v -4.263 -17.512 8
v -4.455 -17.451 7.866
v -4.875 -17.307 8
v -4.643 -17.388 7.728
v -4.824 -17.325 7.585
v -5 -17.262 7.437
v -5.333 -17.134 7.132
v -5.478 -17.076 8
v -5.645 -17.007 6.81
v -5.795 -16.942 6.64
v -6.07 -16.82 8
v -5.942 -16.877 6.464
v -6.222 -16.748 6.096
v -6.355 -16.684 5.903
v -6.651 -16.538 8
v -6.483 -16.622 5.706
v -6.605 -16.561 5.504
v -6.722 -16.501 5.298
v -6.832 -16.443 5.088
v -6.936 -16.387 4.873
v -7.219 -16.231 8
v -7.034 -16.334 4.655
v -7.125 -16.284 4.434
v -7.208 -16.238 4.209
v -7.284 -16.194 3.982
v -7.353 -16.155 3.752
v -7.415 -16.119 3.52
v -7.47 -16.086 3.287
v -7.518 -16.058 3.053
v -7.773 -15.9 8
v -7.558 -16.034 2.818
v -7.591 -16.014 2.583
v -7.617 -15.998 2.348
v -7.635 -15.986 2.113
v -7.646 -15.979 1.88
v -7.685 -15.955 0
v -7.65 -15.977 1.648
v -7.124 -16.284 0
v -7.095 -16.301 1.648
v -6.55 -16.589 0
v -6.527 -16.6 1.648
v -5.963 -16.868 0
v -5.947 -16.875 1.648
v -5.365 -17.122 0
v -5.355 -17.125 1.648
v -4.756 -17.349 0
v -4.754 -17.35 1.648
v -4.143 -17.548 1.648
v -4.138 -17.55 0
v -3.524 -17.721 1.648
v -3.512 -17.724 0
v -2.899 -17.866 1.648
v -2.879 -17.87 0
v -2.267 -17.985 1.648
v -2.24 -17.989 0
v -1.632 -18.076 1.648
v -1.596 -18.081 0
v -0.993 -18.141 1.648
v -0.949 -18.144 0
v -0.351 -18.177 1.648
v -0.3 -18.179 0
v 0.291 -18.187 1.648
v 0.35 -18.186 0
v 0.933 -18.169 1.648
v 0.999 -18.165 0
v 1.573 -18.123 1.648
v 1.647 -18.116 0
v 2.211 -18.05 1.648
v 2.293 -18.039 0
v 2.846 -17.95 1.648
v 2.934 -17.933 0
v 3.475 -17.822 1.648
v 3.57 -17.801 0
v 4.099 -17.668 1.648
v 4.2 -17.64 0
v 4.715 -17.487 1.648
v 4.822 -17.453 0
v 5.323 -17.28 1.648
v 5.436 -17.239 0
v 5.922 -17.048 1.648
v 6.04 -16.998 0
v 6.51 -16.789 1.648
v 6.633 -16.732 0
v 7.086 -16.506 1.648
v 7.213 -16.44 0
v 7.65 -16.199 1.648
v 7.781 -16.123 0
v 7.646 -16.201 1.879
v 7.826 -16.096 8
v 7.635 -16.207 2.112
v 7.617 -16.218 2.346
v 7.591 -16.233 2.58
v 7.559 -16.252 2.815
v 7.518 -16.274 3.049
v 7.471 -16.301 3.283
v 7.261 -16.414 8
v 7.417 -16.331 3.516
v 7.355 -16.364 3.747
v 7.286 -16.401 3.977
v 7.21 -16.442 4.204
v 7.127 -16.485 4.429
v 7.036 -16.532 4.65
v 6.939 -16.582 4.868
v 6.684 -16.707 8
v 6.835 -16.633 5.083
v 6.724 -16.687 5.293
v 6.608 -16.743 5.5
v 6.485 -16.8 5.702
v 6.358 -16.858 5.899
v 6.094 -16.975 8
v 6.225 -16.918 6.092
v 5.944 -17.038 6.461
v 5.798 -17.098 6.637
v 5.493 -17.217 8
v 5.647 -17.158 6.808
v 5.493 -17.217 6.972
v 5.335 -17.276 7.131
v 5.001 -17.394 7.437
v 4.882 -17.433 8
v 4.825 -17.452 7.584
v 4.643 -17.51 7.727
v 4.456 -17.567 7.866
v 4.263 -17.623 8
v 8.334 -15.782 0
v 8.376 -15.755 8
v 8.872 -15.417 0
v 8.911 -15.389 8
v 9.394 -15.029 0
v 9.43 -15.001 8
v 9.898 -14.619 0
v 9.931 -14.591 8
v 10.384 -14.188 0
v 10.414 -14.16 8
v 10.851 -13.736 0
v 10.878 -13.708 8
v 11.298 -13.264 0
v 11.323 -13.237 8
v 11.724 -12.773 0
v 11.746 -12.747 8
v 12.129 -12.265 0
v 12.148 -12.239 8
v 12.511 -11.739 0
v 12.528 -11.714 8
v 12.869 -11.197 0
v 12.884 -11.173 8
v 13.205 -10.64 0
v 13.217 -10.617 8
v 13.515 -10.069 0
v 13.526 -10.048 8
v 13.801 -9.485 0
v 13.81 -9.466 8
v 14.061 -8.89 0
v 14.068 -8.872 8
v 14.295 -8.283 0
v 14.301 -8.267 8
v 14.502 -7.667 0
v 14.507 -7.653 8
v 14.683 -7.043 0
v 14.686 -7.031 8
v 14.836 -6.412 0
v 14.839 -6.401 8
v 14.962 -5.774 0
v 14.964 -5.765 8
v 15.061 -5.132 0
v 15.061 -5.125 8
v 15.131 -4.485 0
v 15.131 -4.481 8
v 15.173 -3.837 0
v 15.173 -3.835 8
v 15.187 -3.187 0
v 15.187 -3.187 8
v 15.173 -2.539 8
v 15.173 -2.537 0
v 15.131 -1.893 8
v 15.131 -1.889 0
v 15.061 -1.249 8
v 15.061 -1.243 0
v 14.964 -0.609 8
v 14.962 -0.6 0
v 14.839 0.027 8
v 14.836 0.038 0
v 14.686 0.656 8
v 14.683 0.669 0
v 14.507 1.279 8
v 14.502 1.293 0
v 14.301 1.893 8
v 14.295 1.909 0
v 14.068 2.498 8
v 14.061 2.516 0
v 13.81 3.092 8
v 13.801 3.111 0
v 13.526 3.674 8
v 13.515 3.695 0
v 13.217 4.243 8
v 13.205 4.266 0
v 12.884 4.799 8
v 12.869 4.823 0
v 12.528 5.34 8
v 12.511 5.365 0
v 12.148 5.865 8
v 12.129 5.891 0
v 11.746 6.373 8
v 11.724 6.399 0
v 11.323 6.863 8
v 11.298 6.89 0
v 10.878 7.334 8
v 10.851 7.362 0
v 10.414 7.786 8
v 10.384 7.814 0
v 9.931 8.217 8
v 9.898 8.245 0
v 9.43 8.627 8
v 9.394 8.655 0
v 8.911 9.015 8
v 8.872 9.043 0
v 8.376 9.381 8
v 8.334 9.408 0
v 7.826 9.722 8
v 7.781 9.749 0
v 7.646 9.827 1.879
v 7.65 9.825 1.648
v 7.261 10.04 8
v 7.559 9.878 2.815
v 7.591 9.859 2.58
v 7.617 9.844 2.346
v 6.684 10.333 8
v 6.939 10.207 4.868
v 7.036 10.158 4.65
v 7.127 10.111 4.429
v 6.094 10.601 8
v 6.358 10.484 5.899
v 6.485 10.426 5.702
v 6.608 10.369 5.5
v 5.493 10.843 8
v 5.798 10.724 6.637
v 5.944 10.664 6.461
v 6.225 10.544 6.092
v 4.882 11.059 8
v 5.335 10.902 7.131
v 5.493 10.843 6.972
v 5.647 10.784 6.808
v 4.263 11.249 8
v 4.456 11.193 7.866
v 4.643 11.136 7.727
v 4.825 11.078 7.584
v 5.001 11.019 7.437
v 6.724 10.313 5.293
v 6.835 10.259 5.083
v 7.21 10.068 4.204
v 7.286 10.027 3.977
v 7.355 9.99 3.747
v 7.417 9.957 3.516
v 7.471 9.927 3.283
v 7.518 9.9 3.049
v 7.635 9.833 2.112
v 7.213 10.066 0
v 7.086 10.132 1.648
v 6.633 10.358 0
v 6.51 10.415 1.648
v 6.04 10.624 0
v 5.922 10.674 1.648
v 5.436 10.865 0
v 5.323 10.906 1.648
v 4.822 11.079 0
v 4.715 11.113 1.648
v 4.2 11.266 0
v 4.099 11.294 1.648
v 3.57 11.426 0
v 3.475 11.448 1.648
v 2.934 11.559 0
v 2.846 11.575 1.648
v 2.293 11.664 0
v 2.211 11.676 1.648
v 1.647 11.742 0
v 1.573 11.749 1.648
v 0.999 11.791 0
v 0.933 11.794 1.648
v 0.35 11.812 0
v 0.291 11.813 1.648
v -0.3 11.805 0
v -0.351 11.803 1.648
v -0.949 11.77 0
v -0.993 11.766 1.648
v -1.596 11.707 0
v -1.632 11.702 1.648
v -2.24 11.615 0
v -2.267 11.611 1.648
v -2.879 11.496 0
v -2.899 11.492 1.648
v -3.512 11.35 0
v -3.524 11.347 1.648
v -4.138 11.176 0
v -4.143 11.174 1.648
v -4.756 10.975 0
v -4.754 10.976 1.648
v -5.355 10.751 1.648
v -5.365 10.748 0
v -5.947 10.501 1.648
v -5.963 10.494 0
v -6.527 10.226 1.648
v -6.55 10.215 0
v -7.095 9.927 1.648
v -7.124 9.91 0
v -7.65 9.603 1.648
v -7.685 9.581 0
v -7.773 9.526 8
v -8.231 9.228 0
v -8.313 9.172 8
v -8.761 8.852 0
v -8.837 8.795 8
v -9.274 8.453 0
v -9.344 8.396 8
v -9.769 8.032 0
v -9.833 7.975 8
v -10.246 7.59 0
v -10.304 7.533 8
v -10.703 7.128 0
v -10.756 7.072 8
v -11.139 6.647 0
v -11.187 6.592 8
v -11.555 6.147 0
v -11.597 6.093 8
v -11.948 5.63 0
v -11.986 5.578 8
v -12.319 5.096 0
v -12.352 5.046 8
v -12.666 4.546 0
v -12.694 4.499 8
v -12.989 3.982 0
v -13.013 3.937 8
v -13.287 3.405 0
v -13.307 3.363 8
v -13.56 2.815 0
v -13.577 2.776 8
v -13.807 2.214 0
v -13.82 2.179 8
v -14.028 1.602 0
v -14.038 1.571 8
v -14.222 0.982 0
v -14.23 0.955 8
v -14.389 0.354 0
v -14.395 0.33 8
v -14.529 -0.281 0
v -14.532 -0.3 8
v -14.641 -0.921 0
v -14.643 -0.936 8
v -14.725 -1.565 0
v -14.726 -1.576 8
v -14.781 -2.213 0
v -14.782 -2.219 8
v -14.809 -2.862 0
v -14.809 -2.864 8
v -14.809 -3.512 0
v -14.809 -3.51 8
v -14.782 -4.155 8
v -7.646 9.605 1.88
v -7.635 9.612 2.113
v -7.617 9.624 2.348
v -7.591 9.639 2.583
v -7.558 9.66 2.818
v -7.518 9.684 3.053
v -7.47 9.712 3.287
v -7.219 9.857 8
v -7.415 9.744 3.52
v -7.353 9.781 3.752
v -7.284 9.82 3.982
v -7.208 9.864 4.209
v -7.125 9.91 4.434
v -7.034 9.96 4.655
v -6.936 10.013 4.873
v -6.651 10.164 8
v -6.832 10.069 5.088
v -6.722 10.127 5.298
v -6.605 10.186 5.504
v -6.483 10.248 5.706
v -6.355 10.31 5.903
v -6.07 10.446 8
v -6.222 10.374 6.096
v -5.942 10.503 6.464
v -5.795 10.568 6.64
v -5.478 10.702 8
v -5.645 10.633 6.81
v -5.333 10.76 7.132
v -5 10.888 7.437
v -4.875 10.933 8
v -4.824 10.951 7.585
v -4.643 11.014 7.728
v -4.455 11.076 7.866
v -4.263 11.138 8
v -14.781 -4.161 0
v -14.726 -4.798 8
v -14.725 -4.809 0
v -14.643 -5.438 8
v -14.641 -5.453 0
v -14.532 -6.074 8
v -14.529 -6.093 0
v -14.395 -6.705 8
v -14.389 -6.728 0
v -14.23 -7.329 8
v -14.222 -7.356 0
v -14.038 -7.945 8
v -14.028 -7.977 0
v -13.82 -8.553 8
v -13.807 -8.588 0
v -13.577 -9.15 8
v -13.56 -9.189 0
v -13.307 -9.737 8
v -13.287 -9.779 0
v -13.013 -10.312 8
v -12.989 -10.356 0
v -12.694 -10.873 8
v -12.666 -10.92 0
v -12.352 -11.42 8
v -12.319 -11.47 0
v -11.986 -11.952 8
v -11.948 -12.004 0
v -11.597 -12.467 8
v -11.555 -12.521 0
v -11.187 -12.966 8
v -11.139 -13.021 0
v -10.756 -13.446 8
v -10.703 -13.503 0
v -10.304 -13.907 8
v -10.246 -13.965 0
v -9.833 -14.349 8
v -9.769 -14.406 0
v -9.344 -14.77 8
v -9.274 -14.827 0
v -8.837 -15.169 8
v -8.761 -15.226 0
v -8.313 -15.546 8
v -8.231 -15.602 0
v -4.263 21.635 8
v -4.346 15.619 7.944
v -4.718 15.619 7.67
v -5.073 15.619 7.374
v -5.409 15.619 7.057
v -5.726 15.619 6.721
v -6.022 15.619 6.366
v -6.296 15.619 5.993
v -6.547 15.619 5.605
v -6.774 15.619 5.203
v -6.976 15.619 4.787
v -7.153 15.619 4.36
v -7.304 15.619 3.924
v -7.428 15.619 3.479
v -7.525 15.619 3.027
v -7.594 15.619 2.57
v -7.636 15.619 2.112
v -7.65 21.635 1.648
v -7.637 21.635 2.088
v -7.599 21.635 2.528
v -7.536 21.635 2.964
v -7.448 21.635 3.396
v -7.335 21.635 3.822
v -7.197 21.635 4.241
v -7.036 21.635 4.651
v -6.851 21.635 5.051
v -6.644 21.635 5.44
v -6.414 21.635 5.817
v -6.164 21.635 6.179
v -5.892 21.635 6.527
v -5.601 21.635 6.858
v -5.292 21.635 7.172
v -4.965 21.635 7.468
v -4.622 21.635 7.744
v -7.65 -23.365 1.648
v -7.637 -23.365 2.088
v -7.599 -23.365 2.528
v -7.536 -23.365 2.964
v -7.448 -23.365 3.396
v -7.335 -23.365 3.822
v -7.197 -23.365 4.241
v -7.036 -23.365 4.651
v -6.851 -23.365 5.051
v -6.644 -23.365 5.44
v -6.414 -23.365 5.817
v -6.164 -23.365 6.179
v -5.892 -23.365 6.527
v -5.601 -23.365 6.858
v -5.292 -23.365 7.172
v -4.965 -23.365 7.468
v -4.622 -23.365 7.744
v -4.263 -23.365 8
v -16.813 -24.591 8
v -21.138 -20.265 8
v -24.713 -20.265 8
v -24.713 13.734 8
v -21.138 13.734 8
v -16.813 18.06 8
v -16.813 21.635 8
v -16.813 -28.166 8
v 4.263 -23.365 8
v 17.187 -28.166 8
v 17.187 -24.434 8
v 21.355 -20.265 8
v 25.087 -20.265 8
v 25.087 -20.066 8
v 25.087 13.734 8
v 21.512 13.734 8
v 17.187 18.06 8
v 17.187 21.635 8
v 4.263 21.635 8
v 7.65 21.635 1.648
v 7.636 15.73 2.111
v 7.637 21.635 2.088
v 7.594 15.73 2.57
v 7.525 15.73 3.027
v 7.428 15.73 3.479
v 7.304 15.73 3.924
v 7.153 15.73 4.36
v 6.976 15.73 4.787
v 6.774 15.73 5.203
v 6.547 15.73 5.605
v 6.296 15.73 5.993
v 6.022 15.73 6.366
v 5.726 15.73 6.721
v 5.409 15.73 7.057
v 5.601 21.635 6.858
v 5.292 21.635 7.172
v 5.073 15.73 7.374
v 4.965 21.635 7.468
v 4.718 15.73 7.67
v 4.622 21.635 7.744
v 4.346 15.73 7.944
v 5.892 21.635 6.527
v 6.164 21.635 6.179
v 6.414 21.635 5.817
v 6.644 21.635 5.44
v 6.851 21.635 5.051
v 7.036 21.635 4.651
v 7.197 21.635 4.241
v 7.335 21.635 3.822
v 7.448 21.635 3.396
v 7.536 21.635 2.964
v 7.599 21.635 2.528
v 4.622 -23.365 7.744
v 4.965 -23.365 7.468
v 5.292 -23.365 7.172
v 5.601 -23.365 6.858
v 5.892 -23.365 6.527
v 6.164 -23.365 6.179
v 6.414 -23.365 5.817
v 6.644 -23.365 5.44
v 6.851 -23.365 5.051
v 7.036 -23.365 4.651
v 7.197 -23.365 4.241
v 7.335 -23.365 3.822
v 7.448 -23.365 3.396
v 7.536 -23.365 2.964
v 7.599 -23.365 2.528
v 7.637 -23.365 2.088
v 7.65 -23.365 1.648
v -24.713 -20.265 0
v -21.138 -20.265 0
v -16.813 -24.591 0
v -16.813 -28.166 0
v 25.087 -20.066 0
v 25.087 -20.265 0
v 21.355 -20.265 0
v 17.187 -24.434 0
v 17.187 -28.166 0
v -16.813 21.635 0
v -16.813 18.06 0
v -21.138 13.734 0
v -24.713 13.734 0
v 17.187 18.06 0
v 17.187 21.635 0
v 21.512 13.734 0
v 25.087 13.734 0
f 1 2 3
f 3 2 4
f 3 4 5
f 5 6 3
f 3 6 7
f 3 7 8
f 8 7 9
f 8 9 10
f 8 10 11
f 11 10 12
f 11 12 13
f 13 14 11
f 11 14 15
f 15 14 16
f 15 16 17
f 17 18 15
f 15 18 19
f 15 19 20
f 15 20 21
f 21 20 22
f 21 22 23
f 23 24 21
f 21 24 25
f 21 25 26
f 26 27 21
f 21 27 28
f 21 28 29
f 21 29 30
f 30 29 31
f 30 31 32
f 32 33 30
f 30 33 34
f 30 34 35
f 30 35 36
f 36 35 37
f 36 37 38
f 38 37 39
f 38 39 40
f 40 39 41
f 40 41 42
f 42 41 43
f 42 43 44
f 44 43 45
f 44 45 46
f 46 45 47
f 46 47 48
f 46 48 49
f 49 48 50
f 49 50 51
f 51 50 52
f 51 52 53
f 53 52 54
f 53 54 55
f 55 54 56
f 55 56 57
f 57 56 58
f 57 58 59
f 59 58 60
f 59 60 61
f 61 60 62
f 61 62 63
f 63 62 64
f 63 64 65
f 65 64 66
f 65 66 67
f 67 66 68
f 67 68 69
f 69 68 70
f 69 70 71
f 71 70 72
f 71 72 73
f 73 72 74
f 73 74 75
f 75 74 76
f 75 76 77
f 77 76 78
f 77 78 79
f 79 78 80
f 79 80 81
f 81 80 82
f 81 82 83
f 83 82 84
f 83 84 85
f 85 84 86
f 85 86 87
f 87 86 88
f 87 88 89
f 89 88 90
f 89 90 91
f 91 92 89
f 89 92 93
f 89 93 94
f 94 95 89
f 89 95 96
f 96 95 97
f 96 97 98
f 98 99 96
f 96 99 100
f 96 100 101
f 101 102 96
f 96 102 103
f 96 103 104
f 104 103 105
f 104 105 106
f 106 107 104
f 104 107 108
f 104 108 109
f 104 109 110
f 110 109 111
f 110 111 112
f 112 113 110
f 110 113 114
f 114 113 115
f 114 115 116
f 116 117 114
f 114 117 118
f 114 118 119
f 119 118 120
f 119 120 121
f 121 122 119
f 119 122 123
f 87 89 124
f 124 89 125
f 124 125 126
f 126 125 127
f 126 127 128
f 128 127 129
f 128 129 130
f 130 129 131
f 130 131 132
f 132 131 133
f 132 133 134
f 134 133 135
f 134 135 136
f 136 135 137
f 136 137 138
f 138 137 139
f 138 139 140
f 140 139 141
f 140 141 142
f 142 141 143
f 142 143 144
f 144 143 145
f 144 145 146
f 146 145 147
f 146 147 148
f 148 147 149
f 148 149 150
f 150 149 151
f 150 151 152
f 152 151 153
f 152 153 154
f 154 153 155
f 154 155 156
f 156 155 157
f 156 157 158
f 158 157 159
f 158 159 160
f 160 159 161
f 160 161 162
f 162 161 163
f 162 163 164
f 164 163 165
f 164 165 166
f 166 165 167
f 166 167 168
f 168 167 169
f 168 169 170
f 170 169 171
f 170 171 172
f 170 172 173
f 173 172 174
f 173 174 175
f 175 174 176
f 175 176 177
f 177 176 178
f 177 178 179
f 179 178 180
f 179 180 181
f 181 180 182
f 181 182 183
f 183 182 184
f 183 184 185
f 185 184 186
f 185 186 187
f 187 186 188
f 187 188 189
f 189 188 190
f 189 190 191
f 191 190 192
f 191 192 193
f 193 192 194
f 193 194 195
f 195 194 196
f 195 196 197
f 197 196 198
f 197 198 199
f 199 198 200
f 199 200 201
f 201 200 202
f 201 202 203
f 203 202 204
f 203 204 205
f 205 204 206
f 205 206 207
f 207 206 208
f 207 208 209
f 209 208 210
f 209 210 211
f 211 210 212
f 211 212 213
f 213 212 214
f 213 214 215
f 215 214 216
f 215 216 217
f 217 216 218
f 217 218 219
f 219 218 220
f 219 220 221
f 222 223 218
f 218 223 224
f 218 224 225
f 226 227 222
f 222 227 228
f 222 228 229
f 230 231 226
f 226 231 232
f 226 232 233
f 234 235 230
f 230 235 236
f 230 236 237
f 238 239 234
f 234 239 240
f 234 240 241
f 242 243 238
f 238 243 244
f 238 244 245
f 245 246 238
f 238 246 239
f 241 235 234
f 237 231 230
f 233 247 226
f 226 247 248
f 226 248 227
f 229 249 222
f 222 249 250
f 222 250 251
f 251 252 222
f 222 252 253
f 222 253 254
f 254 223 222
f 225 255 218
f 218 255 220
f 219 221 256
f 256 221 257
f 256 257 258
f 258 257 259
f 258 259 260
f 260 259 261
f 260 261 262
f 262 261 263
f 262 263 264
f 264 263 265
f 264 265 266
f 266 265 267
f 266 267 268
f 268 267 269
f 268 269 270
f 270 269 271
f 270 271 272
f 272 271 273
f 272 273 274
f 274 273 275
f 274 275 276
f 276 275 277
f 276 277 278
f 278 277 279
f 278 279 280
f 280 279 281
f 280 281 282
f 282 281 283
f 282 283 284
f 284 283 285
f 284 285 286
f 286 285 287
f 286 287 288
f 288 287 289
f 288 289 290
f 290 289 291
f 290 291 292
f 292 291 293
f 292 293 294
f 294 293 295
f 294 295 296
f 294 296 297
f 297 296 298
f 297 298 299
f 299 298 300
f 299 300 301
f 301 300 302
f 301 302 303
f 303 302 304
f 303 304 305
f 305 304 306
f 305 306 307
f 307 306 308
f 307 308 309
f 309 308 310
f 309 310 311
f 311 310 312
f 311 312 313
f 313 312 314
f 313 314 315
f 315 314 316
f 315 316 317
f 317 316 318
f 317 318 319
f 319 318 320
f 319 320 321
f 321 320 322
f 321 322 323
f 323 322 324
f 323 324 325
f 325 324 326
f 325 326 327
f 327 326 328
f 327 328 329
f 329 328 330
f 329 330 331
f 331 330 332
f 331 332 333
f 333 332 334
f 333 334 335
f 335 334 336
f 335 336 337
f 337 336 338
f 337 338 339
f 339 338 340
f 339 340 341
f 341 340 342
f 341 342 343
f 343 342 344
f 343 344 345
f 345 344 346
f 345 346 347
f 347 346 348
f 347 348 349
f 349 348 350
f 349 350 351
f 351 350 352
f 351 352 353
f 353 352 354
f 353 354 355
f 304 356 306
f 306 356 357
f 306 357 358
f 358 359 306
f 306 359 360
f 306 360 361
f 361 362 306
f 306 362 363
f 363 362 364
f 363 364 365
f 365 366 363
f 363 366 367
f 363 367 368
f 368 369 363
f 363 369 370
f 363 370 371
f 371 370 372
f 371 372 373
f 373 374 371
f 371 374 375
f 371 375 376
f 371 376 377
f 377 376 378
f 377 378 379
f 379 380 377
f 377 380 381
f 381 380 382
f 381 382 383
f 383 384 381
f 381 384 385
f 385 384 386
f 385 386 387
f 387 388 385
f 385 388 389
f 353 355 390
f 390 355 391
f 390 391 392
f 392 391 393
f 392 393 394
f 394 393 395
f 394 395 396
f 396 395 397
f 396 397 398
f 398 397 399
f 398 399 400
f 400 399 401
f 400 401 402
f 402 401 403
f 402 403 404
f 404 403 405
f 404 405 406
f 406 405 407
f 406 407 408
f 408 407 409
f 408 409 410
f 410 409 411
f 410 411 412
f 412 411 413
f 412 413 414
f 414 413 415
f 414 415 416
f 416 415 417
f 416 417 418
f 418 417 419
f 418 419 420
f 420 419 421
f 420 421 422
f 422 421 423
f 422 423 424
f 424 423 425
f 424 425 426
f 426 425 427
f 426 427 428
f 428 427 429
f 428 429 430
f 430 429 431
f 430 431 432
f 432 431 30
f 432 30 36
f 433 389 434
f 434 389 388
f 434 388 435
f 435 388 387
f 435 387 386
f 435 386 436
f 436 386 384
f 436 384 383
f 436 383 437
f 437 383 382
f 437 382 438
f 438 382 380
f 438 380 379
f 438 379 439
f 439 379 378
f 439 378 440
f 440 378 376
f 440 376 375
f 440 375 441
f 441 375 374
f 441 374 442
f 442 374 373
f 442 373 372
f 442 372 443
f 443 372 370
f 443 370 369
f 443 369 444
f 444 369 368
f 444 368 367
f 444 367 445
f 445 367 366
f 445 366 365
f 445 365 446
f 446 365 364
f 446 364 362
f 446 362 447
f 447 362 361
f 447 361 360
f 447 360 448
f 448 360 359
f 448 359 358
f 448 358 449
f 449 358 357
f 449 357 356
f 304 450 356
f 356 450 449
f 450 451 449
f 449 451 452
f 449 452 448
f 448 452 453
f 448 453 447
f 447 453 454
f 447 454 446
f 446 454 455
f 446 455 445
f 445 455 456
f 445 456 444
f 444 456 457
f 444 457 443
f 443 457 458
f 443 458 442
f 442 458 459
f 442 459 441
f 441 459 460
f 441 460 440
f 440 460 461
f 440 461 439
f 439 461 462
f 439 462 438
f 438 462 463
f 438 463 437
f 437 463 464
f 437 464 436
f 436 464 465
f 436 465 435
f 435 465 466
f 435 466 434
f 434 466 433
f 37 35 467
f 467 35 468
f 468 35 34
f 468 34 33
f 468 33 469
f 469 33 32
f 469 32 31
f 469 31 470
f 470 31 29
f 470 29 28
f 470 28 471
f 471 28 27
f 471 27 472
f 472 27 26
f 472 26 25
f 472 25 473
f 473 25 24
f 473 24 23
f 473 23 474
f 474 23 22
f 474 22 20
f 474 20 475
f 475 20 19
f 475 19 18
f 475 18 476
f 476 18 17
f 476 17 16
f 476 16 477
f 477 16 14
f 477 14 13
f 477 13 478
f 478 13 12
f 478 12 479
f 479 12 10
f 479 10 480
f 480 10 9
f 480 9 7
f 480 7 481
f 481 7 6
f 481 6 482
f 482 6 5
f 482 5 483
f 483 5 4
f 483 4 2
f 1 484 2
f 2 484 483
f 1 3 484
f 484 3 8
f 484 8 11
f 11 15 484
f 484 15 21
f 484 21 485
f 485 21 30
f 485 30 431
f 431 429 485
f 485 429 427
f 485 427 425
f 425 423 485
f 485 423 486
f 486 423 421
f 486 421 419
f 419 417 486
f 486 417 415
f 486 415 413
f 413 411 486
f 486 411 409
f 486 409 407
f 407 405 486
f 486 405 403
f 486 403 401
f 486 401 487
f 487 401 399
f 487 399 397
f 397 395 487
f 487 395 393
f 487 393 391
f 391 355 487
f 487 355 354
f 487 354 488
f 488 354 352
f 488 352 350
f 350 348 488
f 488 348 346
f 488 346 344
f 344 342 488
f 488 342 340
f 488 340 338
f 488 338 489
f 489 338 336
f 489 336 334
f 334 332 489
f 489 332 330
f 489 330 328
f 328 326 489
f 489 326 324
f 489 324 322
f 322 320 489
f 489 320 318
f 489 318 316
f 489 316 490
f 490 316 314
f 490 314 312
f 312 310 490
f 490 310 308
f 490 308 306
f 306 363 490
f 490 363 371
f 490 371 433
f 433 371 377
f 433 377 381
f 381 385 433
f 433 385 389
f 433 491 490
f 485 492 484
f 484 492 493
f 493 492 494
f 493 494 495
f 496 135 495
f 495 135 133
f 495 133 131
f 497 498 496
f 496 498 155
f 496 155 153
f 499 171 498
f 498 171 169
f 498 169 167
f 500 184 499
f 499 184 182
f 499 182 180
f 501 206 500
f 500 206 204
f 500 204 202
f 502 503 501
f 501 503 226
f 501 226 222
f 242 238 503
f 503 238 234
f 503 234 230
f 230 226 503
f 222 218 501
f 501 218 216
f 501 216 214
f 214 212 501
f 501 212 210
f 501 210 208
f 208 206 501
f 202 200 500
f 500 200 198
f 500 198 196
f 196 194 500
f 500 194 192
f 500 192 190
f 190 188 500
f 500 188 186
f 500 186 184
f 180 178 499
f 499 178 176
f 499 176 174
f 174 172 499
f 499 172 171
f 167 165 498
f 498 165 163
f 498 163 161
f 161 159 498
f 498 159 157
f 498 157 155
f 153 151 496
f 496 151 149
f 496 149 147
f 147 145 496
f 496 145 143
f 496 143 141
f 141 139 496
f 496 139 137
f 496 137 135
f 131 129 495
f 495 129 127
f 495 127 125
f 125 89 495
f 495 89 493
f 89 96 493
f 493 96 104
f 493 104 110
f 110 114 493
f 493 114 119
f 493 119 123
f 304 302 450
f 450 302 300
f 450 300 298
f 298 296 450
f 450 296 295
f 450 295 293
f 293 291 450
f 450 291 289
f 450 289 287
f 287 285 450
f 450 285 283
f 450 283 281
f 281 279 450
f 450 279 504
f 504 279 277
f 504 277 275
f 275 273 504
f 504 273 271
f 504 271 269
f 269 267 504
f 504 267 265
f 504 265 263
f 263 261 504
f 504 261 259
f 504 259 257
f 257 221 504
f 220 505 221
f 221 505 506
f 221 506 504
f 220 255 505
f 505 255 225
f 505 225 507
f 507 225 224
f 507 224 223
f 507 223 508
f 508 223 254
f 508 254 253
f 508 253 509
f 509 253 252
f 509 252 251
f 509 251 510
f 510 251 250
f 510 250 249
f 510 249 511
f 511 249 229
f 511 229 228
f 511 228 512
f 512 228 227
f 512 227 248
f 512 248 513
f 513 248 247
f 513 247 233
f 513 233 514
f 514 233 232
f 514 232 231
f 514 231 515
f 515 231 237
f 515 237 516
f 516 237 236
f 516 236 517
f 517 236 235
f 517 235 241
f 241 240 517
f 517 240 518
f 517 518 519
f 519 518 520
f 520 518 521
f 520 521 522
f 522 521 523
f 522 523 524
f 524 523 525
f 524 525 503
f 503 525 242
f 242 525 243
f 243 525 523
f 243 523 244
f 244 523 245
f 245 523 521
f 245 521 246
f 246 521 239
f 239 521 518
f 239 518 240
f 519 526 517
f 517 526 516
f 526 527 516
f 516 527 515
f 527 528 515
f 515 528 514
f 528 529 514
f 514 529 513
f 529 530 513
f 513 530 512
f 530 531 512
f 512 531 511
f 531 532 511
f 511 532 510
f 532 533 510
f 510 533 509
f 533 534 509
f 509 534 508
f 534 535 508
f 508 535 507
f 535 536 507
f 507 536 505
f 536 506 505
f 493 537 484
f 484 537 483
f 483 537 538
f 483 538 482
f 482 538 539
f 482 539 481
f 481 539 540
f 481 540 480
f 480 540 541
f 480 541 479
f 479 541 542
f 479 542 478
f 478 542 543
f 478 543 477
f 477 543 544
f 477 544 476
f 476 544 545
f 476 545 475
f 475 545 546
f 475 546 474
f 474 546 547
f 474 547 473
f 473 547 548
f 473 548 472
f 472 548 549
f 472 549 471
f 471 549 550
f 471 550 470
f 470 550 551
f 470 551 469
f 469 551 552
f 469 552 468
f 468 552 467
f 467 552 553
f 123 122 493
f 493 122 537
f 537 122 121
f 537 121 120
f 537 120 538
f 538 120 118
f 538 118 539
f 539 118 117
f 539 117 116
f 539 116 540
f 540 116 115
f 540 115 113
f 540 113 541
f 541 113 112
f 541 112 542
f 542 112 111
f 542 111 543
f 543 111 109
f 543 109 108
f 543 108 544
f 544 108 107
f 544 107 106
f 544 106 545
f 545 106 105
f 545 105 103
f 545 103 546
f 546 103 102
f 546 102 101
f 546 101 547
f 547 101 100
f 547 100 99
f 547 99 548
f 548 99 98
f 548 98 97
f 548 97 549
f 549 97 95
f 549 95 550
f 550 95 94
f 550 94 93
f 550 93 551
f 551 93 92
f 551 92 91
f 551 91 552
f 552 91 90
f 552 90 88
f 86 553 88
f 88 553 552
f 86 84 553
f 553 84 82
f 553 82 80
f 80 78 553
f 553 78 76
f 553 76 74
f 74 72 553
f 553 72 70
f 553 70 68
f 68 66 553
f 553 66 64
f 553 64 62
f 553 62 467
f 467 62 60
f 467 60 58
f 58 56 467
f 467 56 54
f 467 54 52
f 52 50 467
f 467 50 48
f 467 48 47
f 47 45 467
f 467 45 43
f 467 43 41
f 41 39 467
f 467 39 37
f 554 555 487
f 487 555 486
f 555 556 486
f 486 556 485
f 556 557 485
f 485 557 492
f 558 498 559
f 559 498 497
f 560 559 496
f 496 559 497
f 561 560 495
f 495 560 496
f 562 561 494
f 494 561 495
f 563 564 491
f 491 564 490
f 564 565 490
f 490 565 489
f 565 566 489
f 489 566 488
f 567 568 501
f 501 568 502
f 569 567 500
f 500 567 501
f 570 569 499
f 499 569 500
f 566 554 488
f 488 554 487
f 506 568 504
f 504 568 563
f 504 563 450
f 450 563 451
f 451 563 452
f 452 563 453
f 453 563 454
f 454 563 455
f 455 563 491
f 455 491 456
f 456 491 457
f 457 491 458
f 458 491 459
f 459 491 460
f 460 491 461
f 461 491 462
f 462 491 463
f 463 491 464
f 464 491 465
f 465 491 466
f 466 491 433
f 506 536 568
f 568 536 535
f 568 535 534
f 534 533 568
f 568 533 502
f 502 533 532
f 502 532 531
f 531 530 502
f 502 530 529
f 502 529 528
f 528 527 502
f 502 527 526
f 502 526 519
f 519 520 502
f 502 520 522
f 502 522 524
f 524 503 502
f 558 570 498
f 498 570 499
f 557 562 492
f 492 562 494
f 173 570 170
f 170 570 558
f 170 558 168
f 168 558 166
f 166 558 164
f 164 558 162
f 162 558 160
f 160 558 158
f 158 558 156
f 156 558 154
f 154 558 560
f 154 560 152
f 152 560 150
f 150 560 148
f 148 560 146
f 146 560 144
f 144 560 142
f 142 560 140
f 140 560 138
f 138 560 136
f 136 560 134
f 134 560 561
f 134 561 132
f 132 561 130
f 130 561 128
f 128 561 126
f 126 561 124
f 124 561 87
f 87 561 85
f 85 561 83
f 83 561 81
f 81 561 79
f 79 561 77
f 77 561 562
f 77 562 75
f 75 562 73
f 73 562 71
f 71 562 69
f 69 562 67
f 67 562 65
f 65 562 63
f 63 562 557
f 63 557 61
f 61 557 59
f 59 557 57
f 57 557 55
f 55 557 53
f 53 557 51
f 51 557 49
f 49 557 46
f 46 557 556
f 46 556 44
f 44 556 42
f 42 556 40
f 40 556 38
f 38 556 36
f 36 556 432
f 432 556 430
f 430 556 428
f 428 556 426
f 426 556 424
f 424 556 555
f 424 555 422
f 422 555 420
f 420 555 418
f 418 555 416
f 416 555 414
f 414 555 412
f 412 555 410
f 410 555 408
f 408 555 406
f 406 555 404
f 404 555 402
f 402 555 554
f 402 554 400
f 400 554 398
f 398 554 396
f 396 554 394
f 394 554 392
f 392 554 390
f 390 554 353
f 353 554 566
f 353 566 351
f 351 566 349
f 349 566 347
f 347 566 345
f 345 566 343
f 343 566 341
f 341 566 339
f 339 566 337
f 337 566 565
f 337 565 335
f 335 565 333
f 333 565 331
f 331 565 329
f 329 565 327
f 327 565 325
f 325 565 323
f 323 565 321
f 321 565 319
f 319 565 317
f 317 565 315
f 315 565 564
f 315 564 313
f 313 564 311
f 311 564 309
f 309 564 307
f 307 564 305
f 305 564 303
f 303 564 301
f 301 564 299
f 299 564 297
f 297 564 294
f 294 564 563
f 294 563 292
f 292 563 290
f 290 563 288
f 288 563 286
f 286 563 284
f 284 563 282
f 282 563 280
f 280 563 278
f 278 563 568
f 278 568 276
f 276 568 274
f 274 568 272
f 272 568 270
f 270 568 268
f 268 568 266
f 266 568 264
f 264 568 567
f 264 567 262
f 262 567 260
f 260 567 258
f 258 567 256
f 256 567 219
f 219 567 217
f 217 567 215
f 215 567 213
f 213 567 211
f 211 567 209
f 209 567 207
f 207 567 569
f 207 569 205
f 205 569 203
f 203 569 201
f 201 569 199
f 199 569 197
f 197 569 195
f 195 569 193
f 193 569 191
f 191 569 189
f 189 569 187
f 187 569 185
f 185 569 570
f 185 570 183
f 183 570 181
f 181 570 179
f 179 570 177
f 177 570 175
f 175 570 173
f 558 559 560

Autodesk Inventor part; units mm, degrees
ref_plane "YZ Plane" through (0, 0, 0) normal (1, 0, 0) x (0, 1, 0)
ref_plane "XZ Plane" through (0, 0, 0) normal (0, 1, 0) x (-1, 0, 0)
ref_plane "XY Plane" through (0, 0, 0) normal (0, 0, 1) x (1, 0, 0)
sketch "Sketch1" plane through (0, 0, 0) normal (0, 0, 1) x (1, 0, 0)
  line L0 (21.5871, 13.6345) -> (17.0871, 18.1345) projected
  line L1 (17.0871, 18.1345) -> (-16.7129, 18.1345) projected
  line L2 (-16.7129, 18.1345) -> (-21.2129, 13.6345) projected
  line L3 (-21.0966, 13.6345) -> (-21.0966, -20.1655) projected
  line L4 (21.4709, -20.1655) -> (21.4709, 13.6345) projected
  line L5 (21.4709, -20.1655) -> (17.0871, -24.4078) projected
  line L6 (-16.7129, -24.4078) -> (17.0871, -24.4078) projected
  line L7 (-16.7129, -24.4078) -> (-21.0966, -20.1655) projected
  line L8 (-24.7129, -28.1655) -> (-24.7129, 13.6345) construction
  line L9 (25.0871, -28.1655) -> (-24.7129, -28.1655) construction
  line L10 (25.0871, -28.1655) -> (25.0871, 13.6345) construction
  line L11 (17.0871, 21.6345) -> (-16.7129, 21.6345) construction
  line L12 (-21.0552, -20.0655) -> (-16.6129, -24.5078)
  line L13 (-16.6129, -24.5078) -> (-16.6129, -28.1655)
  line L14 (-16.6129, -28.1655) -> (17.0871, -28.1655)
  line L15 (25.0871, -20.0655) -> (21.4295, -20.0655)
  line L16 (25.0871, 13.5345) -> (25.0871, -20.0655)
  line L17 (21.4295, 13.5345) -> (25.0871, 13.5345)
  line L18 (21.4295, 13.5345) -> (16.9871, 17.9768)
  line L19 (16.9871, 17.9768) -> (16.9871, 21.6345)
  line L20 (16.9871, 21.6345) -> (-16.6129, 21.6345)
  line L21 (-16.6129, 21.6345) -> (-16.6129, 17.9768)
  line L22 (-16.6129, 17.9768) -> (-21.0552, 13.5345)
  line L23 (-24.7129, 13.5345) -> (-21.0552, 13.5345)
  line L24 (-24.7129, -20.0655) -> (-24.7129, 13.5345)
  line L25 (-21.0552, -20.0655) -> (-24.7129, -20.0655)
  line L26 (-12.3129, -23.2655) -> (12.6871, -23.2655) projected
  line L27 (12.6871, -23.2655) -> (12.6871, 16.7345) projected
  line L28 (-12.3129, 16.7345) -> (12.6871, 16.7345) projected
  line L29 (-12.3129, -23.2655) -> (-12.3129, 16.7345) projected
  line L30 (14.6871, -25.2655) -> (-14.3129, -25.2655) construction
  line L31 (-14.3129, -25.2655) -> (-14.3129, 18.7345) construction
  line L32 (-14.3129, 18.7345) -> (14.6871, 18.7345) construction
  line L33 (14.6871, 18.7345) -> (14.6871, -25.2655) construction
  line L34 (-17.3129, 21.7345) -> (17.6871, 21.7345) construction
  line L35 (17.6871, 21.7345) -> (17.6871, -28.2655) construction
  line L36 (17.6871, -28.2655) -> (-17.3129, -28.2655) construction
  line L37 (-17.3129, -28.2655) -> (-17.3129, 21.7345) construction
  line L38 (-14.3129, -23.2655) -> (-14.3129, -25.2655)
  line L39 (-14.3129, -25.2655) -> (14.6871, -25.2655)
  line L40 (14.6871, -25.2655) -> (14.6871, -20.0655)
  line L41 (14.6871, -20.0655) -> (17.6871, -20.0655)
  line L42 (17.6871, -20.0655) -> (17.6871, 13.5345)
  line L43 (17.6871, 13.5345) -> (14.6871, 13.5345)
  line L44 (14.6871, 13.5345) -> (14.6871, 18.7345)
  line L45 (14.6871, 18.7345) -> (-14.3129, 18.7345)
  line L46 (-14.3129, 18.7345) -> (-14.3129, 13.5345)
  line L47 (-14.3129, 13.5345) -> (-17.3129, 13.5345)
  line L48 (-17.3129, 13.5345) -> (-17.3129, -20.0655)
  line L49 (-17.3129, -20.0655) -> (-14.3129, -20.0655)
  line L50 (-14.3129, -20.0655) -> (-14.3129, -23.2655)
  line L51 (-16.6129, -28.1655) -> (17.0871, -28.1655)
  line L52 (16.9871, -28.1655) -> (16.9871, -24.3509)
  line L53 (16.9871, -24.3509) -> (21.2726, -20.0655)
  line L54 (21.2726, -20.0655) -> (21.4295, -20.0655)
  point P0 (14.2, -44.8454)
  point P1 (16.9871, 19.8057)
  dimension "d74" = 2
  dimension "d75" = 5
  dimension "d76" = 135
extrude "Extrusion1" add sketch "Sketch1" along normal blind 8 contours L19 L18 L17 L4 L15 L54 L53 L52 L6 L40 L41 L42 L43 L44 L1 | L1 L44 L45 L46 L21 L20 L19 | L44 L43 L42 L41 L40 L6 L38 L50 L49 L48 L47 L46 L1 | L1 L46 L45 L44 | L46 L47 L48 L49 L50 L38 L6 L12 L25 L3 L23 L22 L21 L1 | L17 L16 L15 L4 | L3 L25 L24 L23 | L40 L39 L38 L6 | L6 L52 L14 L13 L12 L38 L39 L40 | L29 L28 L27 L26
sketch "Skizze7" plane through (0, 0, 8) normal (0, 0, 1) x (1, 0, 0)
  line L0 (-21.0552, -20.0655) -> (-16.6129, -24.5078) projected
  line L1 (-16.6129, -24.5078) -> (-16.6129, -28.1655) projected
  line L2 (-16.6129, -28.1655) -> (16.9871, -28.1655) construction
  line L3 (16.9871, -28.1655) -> (16.9871, -24.3509) projected
  line L4 (16.9871, -24.3509) -> (21.2726, -20.0655) projected
  line L5 (21.2726, -20.0655) -> (25.0871, -20.0655) projected
  line L6 (25.0871, -20.0655) -> (25.0871, 13.5345) construction
  line L7 (25.0871, 13.5345) -> (21.4295, 13.5345) projected
  line L8 (21.4295, 13.5345) -> (16.9871, 17.9768) projected
  line L9 (16.9871, 17.9768) -> (16.9871, 21.6345) projected
  line L10 (16.9871, 21.6345) -> (-16.6129, 21.6345) construction
  line L11 (-16.6129, 21.6345) -> (-16.6129, 17.9768) projected
  line L12 (-16.6129, 17.9768) -> (-21.0552, 13.5345) projected
  line L13 (-21.0552, 13.5345) -> (-24.7129, 13.5345) projected
  line L14 (-24.7129, 13.5345) -> (-24.7129, -20.0655) construction
  line L15 (-24.7129, -20.0655) -> (-21.0552, -20.0655) projected
  line L16 (-16.8129, 21.8345) -> (17.1871, 21.8345) construction
  line L17 (17.1871, 21.8345) -> (17.1871, 18.0597)
  line L18 (17.1871, 18.0597) -> (21.5123, 13.7345)
  line L19 (21.5123, 13.7345) -> (25.2871, 13.7345)
  line L20 (25.2871, 13.7345) -> (25.2871, -20.2655) construction
  line L21 (25.2871, -20.2655) -> (21.3554, -20.2655)
  line L22 (21.3554, -20.2655) -> (17.1871, -24.4338)
  line L23 (17.1871, -24.4338) -> (17.1871, -28.3655)
  line L24 (17.1871, -28.3655) -> (-16.8129, -28.3655) construction
  line L25 (-16.8129, -28.3655) -> (-16.8129, -24.5907)
  line L26 (-16.8129, -24.5907) -> (-21.1381, -20.2655)
  line L27 (-21.1381, -20.2655) -> (-24.9129, -20.2655)
  line L28 (-24.9129, -20.2655) -> (-24.9129, 13.7345) construction
  line L29 (-24.9129, 13.7345) -> (-21.1381, 13.7345)
  line L30 (-21.1381, 13.7345) -> (-16.8129, 18.0597)
  line L31 (-16.8129, 18.0597) -> (-16.8129, 21.8345)
  line L32 (-21.0552, 13.5345) -> (-24.7129, 13.5345) projected
  line L33 (-24.7129, 13.5345) -> (-24.7129, 13.7345)
  line L34 (-16.6129, 21.6345) -> (-16.6129, 17.9768) projected
  line L35 (-16.6129, 21.6345) -> (-16.8129, 21.6345)
  line L36 (25.0871, -20.0655) -> (25.0871, 13.5345) projected
  line L37 (25.0871, 13.5345) -> (25.0871, 13.7345)
  line L38 (16.9871, 21.6345) -> (17.1871, 21.6345)
  line L39 (16.9871, -28.1655) -> (17.1871, -28.1655)
  line L40 (25.0871, -20.0655) -> (25.0871, -20.2655)
  line L41 (-16.6129, -28.1655) -> (-16.8129, -28.1655)
  line L42 (-24.7129, -20.0655) -> (-24.7129, -20.2655)
  dimension "d94" = 0.2
extrude "IM_offset" add sketch "Skizze7" against normal up to surface (8 mm away)
sketch "Sketch8" plane through (-16.8129, 21.6345, 0) normal (0, 1, 0) x (1, 0, 0)
  line L0 (0, 0) -> (34, 0) projected
  line L1 (34, -8) -> (0, -8) projected
  line L2 (9.1629, -1.6478) -> (24.4629, -1.6478)
  arc A0 (9.1629, -1.6478) -> (24.4629, -1.6478) centre (16.8129, -1.6478) ccw
  line L3 (0, -8) -> (0, 0) projected
  line L4 (34, -8) -> (34, 0) projected
  point P0 (16.8129, 0)
  dimension "d86" = 15.3
  dimension "d88" = 0
extrude "Extrusion7" cut sketch "Sketch8" against normal blind 45 contours A0 L2 L1 | L1 A0
sketch "Sketch9" plane through (0, 0, 8) normal (0, 0, 1) x (1, 0, 0)
  line L0 (-4.2628, 21.6345) -> (-16.8129, 21.6345) projected
  line L1 (-24.7129, 13.7345) -> (-24.7129, -20.2655) projected
  line L2 (17.1871, -28.1655) -> (-16.8129, -28.1655) projected
  line L3 (25.0871, -20.0655) -> (25.0871, 13.7345) projected
  circle A0 centre (0.1871, -3.187) radius 27.0445
  circle A1 centre (0.1871, -3.187) radius 15
  line L4 (4.2628, 21.6345) -> (4.2628, -23.3655) projected
  line L5 (4.2628, -23.3655) -> (-4.2628, -23.3655) projected
  line L6 (-4.2628, -23.3655) -> (-4.2628, 21.6345) projected
  line L7 (17.1871, 21.6345) -> (4.2628, 21.6345) projected
  line L8 (-16.8129, 21.6345) -> (-16.8129, 18.0597) projected
  line L9 (-16.8129, 18.0597) -> (-21.1381, 13.7345) projected
  line L10 (-21.1381, 13.7345) -> (-24.7129, 13.7345) projected
  line L11 (17.1871, -28.1655) -> (17.1871, -24.4338) projected
  line L12 (17.1871, -24.4338) -> (21.3554, -20.2655) projected
  line L13 (21.3554, -20.2655) -> (25.0871, -20.2655) projected
  line L14 (25.0871, -20.2655) -> (25.0871, -20.0655) projected
  line L15 (25.0871, 13.7345) -> (21.5123, 13.7345) projected
  line L16 (21.5123, 13.7345) -> (17.1871, 18.0597) projected
  line L17 (17.1871, 18.0597) -> (17.1871, 21.6345) projected
  line L18 (-21.1381, -20.2655) -> (-24.7129, -20.2655) projected
  line L19 (-16.8129, -24.5907) -> (-21.1381, -20.2655) projected
  line L20 (-16.8129, -28.1655) -> (-16.8129, -24.5907) projected
  point P0 (0, 0)
  dimension "d91" = 30
extrude "Extrusion8" cut sketch "Sketch9" against normal through all contours L6 A1 | A1 L4 L6 | A1 L4
properties part number "20_Cube_Insert_Lens_Cylindrical_Plexiglas_glassslab_v3"
